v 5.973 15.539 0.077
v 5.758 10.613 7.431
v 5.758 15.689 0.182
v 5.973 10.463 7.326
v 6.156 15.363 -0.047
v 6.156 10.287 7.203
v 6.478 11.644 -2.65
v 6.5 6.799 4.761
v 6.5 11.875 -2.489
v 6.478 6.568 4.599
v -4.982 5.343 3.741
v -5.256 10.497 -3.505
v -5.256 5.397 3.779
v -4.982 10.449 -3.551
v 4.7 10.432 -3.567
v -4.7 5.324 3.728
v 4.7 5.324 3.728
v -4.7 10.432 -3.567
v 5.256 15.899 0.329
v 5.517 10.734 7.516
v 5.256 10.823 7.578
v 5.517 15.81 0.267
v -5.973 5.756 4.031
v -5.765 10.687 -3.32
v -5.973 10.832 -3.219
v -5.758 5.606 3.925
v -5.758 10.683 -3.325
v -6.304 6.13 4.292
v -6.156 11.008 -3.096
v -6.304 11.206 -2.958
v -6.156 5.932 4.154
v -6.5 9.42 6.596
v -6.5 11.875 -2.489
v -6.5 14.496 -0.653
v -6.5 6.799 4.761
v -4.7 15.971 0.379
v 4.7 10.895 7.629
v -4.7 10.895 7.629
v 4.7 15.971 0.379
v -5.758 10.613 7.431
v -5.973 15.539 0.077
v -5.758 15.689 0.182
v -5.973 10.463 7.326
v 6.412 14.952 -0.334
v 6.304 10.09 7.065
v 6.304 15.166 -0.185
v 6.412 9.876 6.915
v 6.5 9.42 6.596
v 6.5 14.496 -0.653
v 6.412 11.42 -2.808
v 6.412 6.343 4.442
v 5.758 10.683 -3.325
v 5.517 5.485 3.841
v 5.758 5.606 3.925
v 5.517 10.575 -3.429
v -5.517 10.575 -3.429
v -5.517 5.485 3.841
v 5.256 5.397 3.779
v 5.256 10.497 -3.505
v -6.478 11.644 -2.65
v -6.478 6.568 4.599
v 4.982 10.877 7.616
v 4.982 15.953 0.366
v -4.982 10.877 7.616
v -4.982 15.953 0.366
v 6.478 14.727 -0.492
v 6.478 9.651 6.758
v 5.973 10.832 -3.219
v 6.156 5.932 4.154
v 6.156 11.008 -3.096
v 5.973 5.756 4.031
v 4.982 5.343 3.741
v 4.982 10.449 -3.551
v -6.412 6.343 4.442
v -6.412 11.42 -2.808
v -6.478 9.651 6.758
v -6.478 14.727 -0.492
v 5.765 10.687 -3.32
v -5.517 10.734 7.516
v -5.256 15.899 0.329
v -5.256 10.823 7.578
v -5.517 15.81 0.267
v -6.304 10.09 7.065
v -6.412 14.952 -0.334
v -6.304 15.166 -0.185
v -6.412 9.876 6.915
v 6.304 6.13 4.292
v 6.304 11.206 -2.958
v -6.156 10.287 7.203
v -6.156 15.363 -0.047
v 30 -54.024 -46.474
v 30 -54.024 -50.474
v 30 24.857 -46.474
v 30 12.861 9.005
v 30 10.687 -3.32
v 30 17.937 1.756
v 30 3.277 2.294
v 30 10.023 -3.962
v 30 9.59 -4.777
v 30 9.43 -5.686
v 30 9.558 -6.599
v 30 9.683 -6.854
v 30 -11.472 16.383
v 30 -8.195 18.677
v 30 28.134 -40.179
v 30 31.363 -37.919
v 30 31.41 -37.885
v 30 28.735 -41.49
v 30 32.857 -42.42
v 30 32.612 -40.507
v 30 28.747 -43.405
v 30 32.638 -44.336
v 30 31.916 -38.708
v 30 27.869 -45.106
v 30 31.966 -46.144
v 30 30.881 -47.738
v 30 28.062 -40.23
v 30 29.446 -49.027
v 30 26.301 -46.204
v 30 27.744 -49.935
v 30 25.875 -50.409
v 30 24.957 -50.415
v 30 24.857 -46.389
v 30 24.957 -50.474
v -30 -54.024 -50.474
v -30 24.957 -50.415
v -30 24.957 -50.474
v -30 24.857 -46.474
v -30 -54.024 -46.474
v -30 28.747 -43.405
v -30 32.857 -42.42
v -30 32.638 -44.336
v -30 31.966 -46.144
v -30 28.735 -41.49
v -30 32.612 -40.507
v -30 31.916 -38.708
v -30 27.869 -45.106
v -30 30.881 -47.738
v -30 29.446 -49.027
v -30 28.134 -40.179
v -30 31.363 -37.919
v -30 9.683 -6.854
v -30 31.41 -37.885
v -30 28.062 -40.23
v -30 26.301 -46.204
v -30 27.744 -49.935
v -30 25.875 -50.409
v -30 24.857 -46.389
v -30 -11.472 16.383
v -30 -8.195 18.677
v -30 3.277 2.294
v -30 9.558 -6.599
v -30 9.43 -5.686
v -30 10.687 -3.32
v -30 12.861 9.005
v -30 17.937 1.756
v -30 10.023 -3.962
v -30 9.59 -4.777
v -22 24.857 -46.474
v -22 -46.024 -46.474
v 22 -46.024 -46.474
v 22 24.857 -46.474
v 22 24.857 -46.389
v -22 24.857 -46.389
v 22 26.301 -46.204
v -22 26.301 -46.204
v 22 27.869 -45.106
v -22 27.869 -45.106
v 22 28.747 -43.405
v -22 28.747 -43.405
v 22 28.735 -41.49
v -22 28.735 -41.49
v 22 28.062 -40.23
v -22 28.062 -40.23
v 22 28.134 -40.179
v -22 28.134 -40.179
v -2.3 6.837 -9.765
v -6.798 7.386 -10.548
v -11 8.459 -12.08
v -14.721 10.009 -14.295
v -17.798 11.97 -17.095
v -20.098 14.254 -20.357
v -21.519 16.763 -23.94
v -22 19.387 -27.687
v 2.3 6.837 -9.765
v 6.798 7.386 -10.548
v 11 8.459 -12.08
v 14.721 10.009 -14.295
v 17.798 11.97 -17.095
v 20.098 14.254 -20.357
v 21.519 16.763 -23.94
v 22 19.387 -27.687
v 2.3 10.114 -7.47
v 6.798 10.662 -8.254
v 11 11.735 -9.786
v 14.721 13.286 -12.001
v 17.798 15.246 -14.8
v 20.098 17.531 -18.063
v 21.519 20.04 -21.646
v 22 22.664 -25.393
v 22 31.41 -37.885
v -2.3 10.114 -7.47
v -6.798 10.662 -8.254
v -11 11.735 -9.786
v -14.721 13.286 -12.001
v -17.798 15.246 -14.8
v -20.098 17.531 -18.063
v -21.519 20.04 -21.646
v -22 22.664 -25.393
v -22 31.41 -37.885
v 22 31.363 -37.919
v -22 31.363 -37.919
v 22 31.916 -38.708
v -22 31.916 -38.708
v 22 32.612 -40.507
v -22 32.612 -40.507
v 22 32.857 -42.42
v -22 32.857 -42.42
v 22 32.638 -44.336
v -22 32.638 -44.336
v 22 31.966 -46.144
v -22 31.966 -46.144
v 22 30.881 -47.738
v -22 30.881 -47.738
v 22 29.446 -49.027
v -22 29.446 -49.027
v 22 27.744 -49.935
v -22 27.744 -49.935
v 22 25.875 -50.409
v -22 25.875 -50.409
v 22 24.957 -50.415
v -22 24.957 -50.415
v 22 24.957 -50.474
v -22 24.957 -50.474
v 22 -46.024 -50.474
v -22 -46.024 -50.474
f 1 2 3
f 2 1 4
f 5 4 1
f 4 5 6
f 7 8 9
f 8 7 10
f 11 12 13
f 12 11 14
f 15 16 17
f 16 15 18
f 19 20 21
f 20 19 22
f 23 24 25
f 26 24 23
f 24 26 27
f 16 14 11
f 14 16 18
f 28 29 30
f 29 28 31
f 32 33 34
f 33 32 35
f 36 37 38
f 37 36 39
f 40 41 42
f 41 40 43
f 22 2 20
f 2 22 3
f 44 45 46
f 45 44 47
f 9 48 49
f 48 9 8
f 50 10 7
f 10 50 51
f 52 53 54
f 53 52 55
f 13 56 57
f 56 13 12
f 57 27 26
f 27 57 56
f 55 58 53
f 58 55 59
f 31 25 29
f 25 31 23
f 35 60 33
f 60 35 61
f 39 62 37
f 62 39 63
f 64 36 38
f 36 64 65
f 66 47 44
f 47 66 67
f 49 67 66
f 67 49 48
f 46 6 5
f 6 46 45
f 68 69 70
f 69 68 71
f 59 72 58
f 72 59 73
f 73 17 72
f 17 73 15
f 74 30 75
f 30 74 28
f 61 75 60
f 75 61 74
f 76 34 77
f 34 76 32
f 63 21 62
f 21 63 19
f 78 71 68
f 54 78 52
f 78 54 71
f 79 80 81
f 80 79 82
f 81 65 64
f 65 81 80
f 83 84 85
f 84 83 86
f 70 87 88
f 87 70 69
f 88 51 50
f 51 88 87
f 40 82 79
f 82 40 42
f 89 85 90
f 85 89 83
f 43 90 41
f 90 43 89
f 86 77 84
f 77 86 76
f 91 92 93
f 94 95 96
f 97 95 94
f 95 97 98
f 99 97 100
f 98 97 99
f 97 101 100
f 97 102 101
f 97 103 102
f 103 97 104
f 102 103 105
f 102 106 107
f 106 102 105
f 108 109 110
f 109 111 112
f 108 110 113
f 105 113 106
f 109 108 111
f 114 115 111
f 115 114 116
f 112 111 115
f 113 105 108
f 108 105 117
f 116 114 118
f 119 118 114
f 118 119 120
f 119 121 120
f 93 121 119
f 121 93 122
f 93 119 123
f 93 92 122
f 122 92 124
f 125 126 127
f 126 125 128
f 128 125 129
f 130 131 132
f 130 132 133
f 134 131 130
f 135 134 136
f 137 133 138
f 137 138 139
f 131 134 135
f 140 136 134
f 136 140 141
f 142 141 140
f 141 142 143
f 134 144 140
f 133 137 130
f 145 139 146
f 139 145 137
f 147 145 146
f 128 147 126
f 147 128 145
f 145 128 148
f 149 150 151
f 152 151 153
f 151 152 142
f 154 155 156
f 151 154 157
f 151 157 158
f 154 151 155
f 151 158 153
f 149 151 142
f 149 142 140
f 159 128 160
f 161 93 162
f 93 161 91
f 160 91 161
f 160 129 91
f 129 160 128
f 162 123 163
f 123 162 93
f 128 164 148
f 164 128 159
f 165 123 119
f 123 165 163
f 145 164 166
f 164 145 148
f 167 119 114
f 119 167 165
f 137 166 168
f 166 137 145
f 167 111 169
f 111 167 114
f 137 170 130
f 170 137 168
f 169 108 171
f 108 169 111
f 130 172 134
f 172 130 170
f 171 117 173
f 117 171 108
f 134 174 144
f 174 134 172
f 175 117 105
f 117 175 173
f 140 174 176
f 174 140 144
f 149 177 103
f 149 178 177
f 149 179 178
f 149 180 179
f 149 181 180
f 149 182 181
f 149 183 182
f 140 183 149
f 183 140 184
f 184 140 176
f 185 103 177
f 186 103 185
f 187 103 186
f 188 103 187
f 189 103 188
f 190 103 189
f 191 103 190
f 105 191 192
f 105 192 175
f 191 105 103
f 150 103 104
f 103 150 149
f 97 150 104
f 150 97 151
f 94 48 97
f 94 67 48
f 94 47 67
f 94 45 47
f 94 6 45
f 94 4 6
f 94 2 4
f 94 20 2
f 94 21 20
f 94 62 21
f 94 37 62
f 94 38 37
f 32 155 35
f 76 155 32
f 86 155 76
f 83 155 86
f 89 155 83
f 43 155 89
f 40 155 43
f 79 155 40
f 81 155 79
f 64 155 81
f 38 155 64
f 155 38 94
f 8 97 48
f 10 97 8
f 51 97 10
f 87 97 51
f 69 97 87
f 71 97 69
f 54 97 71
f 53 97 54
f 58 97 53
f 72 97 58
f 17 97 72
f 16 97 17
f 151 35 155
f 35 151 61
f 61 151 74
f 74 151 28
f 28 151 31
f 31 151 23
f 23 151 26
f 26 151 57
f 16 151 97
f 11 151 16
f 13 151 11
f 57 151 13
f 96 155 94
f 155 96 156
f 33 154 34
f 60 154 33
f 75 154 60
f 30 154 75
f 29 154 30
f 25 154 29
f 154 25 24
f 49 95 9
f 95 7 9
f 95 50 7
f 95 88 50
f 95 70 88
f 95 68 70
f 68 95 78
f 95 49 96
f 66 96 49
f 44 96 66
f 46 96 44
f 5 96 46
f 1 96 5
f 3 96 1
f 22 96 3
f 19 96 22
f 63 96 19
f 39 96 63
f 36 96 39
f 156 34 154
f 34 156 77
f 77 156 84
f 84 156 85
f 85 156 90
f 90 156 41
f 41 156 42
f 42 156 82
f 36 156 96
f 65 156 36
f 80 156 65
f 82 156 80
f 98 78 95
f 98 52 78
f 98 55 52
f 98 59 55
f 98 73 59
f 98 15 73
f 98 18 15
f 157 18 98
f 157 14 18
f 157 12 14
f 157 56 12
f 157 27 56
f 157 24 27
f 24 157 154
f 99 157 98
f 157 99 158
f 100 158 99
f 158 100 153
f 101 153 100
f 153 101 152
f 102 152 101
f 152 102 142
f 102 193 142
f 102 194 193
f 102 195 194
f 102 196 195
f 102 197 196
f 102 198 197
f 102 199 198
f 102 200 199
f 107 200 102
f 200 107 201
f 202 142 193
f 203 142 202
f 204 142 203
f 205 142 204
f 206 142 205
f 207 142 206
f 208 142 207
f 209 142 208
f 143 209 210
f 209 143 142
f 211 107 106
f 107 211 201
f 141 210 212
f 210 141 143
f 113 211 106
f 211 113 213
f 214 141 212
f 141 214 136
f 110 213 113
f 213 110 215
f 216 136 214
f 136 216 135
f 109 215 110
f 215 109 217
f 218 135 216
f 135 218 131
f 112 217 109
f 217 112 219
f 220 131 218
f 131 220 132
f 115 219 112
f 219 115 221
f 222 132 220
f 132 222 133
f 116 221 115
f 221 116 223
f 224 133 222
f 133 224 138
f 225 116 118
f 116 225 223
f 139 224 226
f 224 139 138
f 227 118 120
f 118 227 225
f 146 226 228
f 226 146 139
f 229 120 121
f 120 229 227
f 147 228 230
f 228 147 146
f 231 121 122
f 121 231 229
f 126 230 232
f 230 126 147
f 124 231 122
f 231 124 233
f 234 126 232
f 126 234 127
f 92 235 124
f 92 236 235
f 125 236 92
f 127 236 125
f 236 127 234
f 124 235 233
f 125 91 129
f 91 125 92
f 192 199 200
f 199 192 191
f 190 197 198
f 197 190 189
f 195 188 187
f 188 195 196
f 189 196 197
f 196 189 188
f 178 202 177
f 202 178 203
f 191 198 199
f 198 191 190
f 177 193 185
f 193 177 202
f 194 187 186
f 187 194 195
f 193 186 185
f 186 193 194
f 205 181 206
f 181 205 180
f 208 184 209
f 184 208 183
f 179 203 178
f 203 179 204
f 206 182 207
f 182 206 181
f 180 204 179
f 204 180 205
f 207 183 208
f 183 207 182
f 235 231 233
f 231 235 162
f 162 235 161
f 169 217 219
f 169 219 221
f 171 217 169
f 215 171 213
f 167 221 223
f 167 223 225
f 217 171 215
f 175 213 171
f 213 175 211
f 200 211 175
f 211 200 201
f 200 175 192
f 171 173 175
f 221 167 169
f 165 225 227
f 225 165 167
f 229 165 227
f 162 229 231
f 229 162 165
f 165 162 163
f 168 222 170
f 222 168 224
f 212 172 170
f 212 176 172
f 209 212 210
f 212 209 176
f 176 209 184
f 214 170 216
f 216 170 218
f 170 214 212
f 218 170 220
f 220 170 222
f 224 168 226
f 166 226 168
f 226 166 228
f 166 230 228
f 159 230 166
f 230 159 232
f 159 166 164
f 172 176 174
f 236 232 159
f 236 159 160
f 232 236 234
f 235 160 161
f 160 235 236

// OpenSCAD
// plug
py = 6.8;
px = 13.0;
pz = 17.7;
pr = 1.8;

// plug narrow part
pnz = 12.5;
pnx = 6.6;

// cell
cx = 75.8;
cy = 11.8;
ca = 35;
ch = 130; // guess
back = 20;
lip = 4;

// WALL
wall = 4;// + rands(-1, 5, 1)[0];
width = 60;
upright = pz + pnz + 10;
legs = 8;// + rands(-3, 8, 1)[0];

// base
base = pz/2;

bottom = (upright+0.75*ch)*sin(ca);

module plug_outline() translate([pr, pr]) minkowski() {
    square([px - 2*pr, py - 2*pr]);
    circle(r=pr, center=true, $fn=40);
}

module narrow_inset() {
    w = (px-pnx)/2;
    h = sqrt(pow(pnz, 2) + pow((px - pnx)/2, 2));
    a = atan((px - pnx)/2/pnz);
    translate([0, 0, pnz]) rotate([0, -a, 0]) translate([-w, -1, -h]) cube([w, py+2, h]);
}

module plug() difference() {
    linear_extrude(pz + pnz) plug_outline();
    narrow_inset();
    translate([px, 0, 0]) mirror() narrow_inset();
}

//plug();

rotate([ca, 0, 0]) difference() {

     translate([width/2, 0, -base]) rotate([0, -90, 0]) linear_extrude(width) union() {
        // platform
       translate([0, -0.1]) difference() {
                translate([-cy/2, wall]) square([base + cy/2, cy]);
                minkowski() {
                  translate([-cy/2-cy/4, wall+cy/4]) square([cy/2, cy]);
                  circle(r=cy/4, $fn=20);
                }
        }
        // upright
        translate([-upright, 0]) square([back + base + upright, wall]);
        // hinge
        translate([-upright, -wall]) difference() {
            circle(r=wall*2);
            circle(r=wall);
            translate([0, -2*wall]) square([2*wall, 4*wall]);
            rotate(ca) translate([-2*wall, -2*wall]) square([4*wall, 2*wall]);
        }
        // bottom
        translate([-upright, -wall]) rotate(ca) translate([-2*wall, -bottom+0.1]) square([wall, bottom]);
    }
    // center circle hole
    translate([0, 1, -width/2 + legs - pz/2 - cy/4]) rotate([90, 0, 0]) cylinder(h = 2*wall, r=width/2-legs, center=true);
    // center square hole
    rotate([180, 0, 0]) translate([-width/2+legs, -wall-1, width/2 - legs + pz/2 + cy/4]) cube([width-2*legs, 3*wall, upright]);
    // bottom square hole
    translate([0, -wall, -upright-base]) rotate([-ca, 0, 0]) translate([-width/2+legs, -bottom+0.1+legs, -2*wall-0.1]) cube([width - 2*legs, bottom, wall+0.2]);

    translate([-px/2, wall + cy/2 - py/2, -pz - pnz + 1]) plug();
}

// study
//rotate([ca, 0, 0]) difference() {
//    translate([-base/2-cy/2, 0, -pz/2]) cube([base+cy, cy, pz/2]);
//    #translate([-px/2, cy/2 - py/2, -pz - pnz + 1]) plug();
//}
